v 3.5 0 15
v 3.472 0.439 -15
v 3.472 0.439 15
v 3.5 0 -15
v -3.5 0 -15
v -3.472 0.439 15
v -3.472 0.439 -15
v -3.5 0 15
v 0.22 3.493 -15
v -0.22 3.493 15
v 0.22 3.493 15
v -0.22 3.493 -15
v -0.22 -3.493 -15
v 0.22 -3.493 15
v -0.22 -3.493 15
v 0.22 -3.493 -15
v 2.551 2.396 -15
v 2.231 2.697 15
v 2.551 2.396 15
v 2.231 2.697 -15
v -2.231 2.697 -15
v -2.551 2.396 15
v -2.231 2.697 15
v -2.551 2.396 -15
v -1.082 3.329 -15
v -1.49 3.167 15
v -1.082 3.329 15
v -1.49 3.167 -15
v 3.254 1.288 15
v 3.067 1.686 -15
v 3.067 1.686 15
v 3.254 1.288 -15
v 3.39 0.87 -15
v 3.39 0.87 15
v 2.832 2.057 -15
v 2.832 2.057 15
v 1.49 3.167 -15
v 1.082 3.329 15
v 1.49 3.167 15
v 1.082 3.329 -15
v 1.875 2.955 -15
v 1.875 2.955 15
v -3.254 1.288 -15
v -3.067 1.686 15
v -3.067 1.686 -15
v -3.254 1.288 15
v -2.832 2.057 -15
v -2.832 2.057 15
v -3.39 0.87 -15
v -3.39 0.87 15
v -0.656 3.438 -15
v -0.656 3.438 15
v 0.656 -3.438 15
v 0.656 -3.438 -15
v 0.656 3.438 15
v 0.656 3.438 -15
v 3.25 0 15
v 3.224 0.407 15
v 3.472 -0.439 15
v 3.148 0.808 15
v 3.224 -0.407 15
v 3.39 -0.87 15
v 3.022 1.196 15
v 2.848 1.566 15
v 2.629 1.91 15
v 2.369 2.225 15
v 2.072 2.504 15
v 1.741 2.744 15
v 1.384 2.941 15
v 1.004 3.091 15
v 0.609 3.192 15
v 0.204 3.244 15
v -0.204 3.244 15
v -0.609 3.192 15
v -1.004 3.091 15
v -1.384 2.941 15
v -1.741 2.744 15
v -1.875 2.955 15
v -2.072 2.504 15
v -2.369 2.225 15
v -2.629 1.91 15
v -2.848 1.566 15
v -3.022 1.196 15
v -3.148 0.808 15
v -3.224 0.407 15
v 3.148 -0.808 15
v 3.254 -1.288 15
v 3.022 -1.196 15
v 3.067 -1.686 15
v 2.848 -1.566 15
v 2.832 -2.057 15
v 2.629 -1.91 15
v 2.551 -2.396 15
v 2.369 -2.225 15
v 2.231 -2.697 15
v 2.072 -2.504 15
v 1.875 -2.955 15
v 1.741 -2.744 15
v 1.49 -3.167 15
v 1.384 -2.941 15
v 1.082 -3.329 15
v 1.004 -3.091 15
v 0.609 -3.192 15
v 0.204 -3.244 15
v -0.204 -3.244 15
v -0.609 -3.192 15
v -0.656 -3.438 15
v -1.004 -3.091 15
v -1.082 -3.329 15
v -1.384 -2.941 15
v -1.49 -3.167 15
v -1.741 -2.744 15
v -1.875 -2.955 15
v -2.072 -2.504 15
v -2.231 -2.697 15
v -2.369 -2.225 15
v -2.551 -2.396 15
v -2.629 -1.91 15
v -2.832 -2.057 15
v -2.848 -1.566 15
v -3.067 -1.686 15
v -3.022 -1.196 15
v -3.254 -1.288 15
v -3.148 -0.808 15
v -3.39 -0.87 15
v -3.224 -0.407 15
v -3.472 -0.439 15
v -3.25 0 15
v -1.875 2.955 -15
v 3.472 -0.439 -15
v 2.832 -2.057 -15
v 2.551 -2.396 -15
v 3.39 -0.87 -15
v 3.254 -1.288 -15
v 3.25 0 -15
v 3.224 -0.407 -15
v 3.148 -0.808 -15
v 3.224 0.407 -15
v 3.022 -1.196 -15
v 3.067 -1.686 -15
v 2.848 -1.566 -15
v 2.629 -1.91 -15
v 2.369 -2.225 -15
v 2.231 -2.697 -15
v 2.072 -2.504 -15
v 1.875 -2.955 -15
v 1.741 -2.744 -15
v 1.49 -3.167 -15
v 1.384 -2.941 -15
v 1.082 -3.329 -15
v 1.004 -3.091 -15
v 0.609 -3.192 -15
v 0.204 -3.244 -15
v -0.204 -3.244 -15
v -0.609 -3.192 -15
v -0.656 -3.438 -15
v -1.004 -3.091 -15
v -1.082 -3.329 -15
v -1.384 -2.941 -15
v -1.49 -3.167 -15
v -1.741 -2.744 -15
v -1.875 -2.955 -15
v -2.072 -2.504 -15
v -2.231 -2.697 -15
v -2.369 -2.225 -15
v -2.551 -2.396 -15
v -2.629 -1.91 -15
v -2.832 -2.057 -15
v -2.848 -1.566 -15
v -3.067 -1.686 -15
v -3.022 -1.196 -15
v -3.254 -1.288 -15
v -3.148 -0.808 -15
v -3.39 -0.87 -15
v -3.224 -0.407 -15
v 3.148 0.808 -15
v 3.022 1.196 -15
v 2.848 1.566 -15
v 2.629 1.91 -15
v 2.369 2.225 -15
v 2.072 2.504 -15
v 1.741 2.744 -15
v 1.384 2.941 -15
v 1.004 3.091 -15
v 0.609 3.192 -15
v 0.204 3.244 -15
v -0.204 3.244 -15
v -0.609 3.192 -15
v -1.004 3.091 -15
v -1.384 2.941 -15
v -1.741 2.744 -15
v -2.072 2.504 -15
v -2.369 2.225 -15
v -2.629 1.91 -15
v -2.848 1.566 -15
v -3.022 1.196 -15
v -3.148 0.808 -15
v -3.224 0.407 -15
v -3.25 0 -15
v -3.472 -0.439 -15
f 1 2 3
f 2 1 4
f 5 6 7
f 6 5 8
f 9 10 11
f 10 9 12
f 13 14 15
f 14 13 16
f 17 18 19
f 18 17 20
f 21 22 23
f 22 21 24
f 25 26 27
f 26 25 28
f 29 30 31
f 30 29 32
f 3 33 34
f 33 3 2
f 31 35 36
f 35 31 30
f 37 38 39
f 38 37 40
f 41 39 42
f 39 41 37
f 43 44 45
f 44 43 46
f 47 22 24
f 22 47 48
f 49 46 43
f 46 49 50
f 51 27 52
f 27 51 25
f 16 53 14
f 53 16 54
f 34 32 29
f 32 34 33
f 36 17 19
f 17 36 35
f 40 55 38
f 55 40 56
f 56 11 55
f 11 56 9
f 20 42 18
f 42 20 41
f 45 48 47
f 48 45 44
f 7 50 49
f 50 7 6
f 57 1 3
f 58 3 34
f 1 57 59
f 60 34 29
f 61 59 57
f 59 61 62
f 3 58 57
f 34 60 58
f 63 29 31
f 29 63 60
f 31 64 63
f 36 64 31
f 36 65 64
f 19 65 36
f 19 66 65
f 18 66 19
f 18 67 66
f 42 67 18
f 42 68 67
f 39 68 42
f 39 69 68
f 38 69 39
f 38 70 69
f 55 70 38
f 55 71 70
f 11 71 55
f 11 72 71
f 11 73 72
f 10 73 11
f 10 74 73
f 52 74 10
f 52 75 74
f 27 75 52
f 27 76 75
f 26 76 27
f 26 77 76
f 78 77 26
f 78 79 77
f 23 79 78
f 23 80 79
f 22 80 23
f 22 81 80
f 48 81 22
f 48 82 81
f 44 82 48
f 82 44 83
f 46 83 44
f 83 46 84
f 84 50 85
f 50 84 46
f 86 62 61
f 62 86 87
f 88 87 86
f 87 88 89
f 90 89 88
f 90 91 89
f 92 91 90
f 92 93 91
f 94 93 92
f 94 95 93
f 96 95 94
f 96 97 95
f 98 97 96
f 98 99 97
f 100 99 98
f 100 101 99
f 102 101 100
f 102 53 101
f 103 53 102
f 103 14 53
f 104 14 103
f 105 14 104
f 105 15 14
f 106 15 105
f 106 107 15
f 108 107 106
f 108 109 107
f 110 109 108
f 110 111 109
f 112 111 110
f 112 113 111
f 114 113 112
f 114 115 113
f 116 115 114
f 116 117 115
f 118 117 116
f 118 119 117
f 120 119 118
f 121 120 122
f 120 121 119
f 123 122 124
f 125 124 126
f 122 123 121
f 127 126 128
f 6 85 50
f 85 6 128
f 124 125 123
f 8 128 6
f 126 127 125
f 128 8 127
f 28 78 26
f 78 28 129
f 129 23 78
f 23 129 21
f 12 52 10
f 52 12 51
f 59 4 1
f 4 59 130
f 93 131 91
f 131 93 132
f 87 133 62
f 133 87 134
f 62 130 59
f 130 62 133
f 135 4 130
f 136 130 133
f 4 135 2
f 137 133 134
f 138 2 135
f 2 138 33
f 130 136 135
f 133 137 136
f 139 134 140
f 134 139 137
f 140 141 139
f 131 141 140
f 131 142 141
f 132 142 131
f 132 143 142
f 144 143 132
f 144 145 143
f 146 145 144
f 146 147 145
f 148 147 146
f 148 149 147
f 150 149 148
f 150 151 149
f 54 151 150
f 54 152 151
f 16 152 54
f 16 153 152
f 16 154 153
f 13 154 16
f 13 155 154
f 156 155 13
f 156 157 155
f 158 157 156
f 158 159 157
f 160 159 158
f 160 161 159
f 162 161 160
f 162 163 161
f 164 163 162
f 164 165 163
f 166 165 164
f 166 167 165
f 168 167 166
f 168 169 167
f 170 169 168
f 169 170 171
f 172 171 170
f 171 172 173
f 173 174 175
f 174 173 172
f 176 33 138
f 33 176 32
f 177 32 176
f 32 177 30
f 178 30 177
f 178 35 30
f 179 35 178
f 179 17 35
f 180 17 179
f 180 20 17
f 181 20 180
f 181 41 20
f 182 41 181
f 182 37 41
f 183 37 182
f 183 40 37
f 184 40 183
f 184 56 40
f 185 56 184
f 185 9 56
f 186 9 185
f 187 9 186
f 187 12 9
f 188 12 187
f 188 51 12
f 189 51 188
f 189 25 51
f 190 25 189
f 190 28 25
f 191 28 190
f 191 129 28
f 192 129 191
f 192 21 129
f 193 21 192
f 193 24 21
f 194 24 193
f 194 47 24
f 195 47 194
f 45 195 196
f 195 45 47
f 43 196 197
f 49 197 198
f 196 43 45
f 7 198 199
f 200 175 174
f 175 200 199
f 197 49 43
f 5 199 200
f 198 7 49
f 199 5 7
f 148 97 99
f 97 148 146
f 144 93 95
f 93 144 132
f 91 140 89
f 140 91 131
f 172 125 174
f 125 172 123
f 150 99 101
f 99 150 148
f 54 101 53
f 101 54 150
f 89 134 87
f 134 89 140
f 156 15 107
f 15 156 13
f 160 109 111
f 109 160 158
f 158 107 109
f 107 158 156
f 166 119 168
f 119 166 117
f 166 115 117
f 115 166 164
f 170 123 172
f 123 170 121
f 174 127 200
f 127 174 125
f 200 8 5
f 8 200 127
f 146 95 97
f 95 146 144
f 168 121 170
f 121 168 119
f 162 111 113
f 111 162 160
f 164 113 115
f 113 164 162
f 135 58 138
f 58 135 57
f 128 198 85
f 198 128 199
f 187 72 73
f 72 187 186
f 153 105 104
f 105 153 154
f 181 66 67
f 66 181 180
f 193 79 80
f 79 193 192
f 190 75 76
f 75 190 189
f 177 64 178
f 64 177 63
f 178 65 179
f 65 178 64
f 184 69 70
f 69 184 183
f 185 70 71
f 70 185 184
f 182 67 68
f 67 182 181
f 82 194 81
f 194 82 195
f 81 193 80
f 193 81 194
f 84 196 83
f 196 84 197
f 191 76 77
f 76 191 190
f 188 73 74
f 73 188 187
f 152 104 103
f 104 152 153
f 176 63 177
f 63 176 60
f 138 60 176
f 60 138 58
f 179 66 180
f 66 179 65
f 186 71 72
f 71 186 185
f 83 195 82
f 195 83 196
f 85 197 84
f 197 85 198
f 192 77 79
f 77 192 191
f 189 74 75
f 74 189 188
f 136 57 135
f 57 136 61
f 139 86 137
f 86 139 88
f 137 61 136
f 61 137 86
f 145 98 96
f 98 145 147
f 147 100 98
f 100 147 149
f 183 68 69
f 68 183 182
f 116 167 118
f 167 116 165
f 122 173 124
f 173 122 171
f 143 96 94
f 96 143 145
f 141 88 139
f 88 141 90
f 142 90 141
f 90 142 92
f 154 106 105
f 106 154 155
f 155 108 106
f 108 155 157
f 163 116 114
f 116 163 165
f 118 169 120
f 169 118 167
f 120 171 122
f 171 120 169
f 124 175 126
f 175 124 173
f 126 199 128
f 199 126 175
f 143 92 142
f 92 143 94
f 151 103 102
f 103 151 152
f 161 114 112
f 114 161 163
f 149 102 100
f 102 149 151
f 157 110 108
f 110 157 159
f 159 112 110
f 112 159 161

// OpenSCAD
$fn = 50;


difference() {
	union() {
		translate(v = [0, 0, -15.0000000000]) {
			cylinder(h = 30, r = 3.5000000000);
		}
	}
	union() {
		translate(v = [0, 0, -100.0000000000]) {
			cylinder(h = 200, r = 3.2500000000);
		}
	}
}
